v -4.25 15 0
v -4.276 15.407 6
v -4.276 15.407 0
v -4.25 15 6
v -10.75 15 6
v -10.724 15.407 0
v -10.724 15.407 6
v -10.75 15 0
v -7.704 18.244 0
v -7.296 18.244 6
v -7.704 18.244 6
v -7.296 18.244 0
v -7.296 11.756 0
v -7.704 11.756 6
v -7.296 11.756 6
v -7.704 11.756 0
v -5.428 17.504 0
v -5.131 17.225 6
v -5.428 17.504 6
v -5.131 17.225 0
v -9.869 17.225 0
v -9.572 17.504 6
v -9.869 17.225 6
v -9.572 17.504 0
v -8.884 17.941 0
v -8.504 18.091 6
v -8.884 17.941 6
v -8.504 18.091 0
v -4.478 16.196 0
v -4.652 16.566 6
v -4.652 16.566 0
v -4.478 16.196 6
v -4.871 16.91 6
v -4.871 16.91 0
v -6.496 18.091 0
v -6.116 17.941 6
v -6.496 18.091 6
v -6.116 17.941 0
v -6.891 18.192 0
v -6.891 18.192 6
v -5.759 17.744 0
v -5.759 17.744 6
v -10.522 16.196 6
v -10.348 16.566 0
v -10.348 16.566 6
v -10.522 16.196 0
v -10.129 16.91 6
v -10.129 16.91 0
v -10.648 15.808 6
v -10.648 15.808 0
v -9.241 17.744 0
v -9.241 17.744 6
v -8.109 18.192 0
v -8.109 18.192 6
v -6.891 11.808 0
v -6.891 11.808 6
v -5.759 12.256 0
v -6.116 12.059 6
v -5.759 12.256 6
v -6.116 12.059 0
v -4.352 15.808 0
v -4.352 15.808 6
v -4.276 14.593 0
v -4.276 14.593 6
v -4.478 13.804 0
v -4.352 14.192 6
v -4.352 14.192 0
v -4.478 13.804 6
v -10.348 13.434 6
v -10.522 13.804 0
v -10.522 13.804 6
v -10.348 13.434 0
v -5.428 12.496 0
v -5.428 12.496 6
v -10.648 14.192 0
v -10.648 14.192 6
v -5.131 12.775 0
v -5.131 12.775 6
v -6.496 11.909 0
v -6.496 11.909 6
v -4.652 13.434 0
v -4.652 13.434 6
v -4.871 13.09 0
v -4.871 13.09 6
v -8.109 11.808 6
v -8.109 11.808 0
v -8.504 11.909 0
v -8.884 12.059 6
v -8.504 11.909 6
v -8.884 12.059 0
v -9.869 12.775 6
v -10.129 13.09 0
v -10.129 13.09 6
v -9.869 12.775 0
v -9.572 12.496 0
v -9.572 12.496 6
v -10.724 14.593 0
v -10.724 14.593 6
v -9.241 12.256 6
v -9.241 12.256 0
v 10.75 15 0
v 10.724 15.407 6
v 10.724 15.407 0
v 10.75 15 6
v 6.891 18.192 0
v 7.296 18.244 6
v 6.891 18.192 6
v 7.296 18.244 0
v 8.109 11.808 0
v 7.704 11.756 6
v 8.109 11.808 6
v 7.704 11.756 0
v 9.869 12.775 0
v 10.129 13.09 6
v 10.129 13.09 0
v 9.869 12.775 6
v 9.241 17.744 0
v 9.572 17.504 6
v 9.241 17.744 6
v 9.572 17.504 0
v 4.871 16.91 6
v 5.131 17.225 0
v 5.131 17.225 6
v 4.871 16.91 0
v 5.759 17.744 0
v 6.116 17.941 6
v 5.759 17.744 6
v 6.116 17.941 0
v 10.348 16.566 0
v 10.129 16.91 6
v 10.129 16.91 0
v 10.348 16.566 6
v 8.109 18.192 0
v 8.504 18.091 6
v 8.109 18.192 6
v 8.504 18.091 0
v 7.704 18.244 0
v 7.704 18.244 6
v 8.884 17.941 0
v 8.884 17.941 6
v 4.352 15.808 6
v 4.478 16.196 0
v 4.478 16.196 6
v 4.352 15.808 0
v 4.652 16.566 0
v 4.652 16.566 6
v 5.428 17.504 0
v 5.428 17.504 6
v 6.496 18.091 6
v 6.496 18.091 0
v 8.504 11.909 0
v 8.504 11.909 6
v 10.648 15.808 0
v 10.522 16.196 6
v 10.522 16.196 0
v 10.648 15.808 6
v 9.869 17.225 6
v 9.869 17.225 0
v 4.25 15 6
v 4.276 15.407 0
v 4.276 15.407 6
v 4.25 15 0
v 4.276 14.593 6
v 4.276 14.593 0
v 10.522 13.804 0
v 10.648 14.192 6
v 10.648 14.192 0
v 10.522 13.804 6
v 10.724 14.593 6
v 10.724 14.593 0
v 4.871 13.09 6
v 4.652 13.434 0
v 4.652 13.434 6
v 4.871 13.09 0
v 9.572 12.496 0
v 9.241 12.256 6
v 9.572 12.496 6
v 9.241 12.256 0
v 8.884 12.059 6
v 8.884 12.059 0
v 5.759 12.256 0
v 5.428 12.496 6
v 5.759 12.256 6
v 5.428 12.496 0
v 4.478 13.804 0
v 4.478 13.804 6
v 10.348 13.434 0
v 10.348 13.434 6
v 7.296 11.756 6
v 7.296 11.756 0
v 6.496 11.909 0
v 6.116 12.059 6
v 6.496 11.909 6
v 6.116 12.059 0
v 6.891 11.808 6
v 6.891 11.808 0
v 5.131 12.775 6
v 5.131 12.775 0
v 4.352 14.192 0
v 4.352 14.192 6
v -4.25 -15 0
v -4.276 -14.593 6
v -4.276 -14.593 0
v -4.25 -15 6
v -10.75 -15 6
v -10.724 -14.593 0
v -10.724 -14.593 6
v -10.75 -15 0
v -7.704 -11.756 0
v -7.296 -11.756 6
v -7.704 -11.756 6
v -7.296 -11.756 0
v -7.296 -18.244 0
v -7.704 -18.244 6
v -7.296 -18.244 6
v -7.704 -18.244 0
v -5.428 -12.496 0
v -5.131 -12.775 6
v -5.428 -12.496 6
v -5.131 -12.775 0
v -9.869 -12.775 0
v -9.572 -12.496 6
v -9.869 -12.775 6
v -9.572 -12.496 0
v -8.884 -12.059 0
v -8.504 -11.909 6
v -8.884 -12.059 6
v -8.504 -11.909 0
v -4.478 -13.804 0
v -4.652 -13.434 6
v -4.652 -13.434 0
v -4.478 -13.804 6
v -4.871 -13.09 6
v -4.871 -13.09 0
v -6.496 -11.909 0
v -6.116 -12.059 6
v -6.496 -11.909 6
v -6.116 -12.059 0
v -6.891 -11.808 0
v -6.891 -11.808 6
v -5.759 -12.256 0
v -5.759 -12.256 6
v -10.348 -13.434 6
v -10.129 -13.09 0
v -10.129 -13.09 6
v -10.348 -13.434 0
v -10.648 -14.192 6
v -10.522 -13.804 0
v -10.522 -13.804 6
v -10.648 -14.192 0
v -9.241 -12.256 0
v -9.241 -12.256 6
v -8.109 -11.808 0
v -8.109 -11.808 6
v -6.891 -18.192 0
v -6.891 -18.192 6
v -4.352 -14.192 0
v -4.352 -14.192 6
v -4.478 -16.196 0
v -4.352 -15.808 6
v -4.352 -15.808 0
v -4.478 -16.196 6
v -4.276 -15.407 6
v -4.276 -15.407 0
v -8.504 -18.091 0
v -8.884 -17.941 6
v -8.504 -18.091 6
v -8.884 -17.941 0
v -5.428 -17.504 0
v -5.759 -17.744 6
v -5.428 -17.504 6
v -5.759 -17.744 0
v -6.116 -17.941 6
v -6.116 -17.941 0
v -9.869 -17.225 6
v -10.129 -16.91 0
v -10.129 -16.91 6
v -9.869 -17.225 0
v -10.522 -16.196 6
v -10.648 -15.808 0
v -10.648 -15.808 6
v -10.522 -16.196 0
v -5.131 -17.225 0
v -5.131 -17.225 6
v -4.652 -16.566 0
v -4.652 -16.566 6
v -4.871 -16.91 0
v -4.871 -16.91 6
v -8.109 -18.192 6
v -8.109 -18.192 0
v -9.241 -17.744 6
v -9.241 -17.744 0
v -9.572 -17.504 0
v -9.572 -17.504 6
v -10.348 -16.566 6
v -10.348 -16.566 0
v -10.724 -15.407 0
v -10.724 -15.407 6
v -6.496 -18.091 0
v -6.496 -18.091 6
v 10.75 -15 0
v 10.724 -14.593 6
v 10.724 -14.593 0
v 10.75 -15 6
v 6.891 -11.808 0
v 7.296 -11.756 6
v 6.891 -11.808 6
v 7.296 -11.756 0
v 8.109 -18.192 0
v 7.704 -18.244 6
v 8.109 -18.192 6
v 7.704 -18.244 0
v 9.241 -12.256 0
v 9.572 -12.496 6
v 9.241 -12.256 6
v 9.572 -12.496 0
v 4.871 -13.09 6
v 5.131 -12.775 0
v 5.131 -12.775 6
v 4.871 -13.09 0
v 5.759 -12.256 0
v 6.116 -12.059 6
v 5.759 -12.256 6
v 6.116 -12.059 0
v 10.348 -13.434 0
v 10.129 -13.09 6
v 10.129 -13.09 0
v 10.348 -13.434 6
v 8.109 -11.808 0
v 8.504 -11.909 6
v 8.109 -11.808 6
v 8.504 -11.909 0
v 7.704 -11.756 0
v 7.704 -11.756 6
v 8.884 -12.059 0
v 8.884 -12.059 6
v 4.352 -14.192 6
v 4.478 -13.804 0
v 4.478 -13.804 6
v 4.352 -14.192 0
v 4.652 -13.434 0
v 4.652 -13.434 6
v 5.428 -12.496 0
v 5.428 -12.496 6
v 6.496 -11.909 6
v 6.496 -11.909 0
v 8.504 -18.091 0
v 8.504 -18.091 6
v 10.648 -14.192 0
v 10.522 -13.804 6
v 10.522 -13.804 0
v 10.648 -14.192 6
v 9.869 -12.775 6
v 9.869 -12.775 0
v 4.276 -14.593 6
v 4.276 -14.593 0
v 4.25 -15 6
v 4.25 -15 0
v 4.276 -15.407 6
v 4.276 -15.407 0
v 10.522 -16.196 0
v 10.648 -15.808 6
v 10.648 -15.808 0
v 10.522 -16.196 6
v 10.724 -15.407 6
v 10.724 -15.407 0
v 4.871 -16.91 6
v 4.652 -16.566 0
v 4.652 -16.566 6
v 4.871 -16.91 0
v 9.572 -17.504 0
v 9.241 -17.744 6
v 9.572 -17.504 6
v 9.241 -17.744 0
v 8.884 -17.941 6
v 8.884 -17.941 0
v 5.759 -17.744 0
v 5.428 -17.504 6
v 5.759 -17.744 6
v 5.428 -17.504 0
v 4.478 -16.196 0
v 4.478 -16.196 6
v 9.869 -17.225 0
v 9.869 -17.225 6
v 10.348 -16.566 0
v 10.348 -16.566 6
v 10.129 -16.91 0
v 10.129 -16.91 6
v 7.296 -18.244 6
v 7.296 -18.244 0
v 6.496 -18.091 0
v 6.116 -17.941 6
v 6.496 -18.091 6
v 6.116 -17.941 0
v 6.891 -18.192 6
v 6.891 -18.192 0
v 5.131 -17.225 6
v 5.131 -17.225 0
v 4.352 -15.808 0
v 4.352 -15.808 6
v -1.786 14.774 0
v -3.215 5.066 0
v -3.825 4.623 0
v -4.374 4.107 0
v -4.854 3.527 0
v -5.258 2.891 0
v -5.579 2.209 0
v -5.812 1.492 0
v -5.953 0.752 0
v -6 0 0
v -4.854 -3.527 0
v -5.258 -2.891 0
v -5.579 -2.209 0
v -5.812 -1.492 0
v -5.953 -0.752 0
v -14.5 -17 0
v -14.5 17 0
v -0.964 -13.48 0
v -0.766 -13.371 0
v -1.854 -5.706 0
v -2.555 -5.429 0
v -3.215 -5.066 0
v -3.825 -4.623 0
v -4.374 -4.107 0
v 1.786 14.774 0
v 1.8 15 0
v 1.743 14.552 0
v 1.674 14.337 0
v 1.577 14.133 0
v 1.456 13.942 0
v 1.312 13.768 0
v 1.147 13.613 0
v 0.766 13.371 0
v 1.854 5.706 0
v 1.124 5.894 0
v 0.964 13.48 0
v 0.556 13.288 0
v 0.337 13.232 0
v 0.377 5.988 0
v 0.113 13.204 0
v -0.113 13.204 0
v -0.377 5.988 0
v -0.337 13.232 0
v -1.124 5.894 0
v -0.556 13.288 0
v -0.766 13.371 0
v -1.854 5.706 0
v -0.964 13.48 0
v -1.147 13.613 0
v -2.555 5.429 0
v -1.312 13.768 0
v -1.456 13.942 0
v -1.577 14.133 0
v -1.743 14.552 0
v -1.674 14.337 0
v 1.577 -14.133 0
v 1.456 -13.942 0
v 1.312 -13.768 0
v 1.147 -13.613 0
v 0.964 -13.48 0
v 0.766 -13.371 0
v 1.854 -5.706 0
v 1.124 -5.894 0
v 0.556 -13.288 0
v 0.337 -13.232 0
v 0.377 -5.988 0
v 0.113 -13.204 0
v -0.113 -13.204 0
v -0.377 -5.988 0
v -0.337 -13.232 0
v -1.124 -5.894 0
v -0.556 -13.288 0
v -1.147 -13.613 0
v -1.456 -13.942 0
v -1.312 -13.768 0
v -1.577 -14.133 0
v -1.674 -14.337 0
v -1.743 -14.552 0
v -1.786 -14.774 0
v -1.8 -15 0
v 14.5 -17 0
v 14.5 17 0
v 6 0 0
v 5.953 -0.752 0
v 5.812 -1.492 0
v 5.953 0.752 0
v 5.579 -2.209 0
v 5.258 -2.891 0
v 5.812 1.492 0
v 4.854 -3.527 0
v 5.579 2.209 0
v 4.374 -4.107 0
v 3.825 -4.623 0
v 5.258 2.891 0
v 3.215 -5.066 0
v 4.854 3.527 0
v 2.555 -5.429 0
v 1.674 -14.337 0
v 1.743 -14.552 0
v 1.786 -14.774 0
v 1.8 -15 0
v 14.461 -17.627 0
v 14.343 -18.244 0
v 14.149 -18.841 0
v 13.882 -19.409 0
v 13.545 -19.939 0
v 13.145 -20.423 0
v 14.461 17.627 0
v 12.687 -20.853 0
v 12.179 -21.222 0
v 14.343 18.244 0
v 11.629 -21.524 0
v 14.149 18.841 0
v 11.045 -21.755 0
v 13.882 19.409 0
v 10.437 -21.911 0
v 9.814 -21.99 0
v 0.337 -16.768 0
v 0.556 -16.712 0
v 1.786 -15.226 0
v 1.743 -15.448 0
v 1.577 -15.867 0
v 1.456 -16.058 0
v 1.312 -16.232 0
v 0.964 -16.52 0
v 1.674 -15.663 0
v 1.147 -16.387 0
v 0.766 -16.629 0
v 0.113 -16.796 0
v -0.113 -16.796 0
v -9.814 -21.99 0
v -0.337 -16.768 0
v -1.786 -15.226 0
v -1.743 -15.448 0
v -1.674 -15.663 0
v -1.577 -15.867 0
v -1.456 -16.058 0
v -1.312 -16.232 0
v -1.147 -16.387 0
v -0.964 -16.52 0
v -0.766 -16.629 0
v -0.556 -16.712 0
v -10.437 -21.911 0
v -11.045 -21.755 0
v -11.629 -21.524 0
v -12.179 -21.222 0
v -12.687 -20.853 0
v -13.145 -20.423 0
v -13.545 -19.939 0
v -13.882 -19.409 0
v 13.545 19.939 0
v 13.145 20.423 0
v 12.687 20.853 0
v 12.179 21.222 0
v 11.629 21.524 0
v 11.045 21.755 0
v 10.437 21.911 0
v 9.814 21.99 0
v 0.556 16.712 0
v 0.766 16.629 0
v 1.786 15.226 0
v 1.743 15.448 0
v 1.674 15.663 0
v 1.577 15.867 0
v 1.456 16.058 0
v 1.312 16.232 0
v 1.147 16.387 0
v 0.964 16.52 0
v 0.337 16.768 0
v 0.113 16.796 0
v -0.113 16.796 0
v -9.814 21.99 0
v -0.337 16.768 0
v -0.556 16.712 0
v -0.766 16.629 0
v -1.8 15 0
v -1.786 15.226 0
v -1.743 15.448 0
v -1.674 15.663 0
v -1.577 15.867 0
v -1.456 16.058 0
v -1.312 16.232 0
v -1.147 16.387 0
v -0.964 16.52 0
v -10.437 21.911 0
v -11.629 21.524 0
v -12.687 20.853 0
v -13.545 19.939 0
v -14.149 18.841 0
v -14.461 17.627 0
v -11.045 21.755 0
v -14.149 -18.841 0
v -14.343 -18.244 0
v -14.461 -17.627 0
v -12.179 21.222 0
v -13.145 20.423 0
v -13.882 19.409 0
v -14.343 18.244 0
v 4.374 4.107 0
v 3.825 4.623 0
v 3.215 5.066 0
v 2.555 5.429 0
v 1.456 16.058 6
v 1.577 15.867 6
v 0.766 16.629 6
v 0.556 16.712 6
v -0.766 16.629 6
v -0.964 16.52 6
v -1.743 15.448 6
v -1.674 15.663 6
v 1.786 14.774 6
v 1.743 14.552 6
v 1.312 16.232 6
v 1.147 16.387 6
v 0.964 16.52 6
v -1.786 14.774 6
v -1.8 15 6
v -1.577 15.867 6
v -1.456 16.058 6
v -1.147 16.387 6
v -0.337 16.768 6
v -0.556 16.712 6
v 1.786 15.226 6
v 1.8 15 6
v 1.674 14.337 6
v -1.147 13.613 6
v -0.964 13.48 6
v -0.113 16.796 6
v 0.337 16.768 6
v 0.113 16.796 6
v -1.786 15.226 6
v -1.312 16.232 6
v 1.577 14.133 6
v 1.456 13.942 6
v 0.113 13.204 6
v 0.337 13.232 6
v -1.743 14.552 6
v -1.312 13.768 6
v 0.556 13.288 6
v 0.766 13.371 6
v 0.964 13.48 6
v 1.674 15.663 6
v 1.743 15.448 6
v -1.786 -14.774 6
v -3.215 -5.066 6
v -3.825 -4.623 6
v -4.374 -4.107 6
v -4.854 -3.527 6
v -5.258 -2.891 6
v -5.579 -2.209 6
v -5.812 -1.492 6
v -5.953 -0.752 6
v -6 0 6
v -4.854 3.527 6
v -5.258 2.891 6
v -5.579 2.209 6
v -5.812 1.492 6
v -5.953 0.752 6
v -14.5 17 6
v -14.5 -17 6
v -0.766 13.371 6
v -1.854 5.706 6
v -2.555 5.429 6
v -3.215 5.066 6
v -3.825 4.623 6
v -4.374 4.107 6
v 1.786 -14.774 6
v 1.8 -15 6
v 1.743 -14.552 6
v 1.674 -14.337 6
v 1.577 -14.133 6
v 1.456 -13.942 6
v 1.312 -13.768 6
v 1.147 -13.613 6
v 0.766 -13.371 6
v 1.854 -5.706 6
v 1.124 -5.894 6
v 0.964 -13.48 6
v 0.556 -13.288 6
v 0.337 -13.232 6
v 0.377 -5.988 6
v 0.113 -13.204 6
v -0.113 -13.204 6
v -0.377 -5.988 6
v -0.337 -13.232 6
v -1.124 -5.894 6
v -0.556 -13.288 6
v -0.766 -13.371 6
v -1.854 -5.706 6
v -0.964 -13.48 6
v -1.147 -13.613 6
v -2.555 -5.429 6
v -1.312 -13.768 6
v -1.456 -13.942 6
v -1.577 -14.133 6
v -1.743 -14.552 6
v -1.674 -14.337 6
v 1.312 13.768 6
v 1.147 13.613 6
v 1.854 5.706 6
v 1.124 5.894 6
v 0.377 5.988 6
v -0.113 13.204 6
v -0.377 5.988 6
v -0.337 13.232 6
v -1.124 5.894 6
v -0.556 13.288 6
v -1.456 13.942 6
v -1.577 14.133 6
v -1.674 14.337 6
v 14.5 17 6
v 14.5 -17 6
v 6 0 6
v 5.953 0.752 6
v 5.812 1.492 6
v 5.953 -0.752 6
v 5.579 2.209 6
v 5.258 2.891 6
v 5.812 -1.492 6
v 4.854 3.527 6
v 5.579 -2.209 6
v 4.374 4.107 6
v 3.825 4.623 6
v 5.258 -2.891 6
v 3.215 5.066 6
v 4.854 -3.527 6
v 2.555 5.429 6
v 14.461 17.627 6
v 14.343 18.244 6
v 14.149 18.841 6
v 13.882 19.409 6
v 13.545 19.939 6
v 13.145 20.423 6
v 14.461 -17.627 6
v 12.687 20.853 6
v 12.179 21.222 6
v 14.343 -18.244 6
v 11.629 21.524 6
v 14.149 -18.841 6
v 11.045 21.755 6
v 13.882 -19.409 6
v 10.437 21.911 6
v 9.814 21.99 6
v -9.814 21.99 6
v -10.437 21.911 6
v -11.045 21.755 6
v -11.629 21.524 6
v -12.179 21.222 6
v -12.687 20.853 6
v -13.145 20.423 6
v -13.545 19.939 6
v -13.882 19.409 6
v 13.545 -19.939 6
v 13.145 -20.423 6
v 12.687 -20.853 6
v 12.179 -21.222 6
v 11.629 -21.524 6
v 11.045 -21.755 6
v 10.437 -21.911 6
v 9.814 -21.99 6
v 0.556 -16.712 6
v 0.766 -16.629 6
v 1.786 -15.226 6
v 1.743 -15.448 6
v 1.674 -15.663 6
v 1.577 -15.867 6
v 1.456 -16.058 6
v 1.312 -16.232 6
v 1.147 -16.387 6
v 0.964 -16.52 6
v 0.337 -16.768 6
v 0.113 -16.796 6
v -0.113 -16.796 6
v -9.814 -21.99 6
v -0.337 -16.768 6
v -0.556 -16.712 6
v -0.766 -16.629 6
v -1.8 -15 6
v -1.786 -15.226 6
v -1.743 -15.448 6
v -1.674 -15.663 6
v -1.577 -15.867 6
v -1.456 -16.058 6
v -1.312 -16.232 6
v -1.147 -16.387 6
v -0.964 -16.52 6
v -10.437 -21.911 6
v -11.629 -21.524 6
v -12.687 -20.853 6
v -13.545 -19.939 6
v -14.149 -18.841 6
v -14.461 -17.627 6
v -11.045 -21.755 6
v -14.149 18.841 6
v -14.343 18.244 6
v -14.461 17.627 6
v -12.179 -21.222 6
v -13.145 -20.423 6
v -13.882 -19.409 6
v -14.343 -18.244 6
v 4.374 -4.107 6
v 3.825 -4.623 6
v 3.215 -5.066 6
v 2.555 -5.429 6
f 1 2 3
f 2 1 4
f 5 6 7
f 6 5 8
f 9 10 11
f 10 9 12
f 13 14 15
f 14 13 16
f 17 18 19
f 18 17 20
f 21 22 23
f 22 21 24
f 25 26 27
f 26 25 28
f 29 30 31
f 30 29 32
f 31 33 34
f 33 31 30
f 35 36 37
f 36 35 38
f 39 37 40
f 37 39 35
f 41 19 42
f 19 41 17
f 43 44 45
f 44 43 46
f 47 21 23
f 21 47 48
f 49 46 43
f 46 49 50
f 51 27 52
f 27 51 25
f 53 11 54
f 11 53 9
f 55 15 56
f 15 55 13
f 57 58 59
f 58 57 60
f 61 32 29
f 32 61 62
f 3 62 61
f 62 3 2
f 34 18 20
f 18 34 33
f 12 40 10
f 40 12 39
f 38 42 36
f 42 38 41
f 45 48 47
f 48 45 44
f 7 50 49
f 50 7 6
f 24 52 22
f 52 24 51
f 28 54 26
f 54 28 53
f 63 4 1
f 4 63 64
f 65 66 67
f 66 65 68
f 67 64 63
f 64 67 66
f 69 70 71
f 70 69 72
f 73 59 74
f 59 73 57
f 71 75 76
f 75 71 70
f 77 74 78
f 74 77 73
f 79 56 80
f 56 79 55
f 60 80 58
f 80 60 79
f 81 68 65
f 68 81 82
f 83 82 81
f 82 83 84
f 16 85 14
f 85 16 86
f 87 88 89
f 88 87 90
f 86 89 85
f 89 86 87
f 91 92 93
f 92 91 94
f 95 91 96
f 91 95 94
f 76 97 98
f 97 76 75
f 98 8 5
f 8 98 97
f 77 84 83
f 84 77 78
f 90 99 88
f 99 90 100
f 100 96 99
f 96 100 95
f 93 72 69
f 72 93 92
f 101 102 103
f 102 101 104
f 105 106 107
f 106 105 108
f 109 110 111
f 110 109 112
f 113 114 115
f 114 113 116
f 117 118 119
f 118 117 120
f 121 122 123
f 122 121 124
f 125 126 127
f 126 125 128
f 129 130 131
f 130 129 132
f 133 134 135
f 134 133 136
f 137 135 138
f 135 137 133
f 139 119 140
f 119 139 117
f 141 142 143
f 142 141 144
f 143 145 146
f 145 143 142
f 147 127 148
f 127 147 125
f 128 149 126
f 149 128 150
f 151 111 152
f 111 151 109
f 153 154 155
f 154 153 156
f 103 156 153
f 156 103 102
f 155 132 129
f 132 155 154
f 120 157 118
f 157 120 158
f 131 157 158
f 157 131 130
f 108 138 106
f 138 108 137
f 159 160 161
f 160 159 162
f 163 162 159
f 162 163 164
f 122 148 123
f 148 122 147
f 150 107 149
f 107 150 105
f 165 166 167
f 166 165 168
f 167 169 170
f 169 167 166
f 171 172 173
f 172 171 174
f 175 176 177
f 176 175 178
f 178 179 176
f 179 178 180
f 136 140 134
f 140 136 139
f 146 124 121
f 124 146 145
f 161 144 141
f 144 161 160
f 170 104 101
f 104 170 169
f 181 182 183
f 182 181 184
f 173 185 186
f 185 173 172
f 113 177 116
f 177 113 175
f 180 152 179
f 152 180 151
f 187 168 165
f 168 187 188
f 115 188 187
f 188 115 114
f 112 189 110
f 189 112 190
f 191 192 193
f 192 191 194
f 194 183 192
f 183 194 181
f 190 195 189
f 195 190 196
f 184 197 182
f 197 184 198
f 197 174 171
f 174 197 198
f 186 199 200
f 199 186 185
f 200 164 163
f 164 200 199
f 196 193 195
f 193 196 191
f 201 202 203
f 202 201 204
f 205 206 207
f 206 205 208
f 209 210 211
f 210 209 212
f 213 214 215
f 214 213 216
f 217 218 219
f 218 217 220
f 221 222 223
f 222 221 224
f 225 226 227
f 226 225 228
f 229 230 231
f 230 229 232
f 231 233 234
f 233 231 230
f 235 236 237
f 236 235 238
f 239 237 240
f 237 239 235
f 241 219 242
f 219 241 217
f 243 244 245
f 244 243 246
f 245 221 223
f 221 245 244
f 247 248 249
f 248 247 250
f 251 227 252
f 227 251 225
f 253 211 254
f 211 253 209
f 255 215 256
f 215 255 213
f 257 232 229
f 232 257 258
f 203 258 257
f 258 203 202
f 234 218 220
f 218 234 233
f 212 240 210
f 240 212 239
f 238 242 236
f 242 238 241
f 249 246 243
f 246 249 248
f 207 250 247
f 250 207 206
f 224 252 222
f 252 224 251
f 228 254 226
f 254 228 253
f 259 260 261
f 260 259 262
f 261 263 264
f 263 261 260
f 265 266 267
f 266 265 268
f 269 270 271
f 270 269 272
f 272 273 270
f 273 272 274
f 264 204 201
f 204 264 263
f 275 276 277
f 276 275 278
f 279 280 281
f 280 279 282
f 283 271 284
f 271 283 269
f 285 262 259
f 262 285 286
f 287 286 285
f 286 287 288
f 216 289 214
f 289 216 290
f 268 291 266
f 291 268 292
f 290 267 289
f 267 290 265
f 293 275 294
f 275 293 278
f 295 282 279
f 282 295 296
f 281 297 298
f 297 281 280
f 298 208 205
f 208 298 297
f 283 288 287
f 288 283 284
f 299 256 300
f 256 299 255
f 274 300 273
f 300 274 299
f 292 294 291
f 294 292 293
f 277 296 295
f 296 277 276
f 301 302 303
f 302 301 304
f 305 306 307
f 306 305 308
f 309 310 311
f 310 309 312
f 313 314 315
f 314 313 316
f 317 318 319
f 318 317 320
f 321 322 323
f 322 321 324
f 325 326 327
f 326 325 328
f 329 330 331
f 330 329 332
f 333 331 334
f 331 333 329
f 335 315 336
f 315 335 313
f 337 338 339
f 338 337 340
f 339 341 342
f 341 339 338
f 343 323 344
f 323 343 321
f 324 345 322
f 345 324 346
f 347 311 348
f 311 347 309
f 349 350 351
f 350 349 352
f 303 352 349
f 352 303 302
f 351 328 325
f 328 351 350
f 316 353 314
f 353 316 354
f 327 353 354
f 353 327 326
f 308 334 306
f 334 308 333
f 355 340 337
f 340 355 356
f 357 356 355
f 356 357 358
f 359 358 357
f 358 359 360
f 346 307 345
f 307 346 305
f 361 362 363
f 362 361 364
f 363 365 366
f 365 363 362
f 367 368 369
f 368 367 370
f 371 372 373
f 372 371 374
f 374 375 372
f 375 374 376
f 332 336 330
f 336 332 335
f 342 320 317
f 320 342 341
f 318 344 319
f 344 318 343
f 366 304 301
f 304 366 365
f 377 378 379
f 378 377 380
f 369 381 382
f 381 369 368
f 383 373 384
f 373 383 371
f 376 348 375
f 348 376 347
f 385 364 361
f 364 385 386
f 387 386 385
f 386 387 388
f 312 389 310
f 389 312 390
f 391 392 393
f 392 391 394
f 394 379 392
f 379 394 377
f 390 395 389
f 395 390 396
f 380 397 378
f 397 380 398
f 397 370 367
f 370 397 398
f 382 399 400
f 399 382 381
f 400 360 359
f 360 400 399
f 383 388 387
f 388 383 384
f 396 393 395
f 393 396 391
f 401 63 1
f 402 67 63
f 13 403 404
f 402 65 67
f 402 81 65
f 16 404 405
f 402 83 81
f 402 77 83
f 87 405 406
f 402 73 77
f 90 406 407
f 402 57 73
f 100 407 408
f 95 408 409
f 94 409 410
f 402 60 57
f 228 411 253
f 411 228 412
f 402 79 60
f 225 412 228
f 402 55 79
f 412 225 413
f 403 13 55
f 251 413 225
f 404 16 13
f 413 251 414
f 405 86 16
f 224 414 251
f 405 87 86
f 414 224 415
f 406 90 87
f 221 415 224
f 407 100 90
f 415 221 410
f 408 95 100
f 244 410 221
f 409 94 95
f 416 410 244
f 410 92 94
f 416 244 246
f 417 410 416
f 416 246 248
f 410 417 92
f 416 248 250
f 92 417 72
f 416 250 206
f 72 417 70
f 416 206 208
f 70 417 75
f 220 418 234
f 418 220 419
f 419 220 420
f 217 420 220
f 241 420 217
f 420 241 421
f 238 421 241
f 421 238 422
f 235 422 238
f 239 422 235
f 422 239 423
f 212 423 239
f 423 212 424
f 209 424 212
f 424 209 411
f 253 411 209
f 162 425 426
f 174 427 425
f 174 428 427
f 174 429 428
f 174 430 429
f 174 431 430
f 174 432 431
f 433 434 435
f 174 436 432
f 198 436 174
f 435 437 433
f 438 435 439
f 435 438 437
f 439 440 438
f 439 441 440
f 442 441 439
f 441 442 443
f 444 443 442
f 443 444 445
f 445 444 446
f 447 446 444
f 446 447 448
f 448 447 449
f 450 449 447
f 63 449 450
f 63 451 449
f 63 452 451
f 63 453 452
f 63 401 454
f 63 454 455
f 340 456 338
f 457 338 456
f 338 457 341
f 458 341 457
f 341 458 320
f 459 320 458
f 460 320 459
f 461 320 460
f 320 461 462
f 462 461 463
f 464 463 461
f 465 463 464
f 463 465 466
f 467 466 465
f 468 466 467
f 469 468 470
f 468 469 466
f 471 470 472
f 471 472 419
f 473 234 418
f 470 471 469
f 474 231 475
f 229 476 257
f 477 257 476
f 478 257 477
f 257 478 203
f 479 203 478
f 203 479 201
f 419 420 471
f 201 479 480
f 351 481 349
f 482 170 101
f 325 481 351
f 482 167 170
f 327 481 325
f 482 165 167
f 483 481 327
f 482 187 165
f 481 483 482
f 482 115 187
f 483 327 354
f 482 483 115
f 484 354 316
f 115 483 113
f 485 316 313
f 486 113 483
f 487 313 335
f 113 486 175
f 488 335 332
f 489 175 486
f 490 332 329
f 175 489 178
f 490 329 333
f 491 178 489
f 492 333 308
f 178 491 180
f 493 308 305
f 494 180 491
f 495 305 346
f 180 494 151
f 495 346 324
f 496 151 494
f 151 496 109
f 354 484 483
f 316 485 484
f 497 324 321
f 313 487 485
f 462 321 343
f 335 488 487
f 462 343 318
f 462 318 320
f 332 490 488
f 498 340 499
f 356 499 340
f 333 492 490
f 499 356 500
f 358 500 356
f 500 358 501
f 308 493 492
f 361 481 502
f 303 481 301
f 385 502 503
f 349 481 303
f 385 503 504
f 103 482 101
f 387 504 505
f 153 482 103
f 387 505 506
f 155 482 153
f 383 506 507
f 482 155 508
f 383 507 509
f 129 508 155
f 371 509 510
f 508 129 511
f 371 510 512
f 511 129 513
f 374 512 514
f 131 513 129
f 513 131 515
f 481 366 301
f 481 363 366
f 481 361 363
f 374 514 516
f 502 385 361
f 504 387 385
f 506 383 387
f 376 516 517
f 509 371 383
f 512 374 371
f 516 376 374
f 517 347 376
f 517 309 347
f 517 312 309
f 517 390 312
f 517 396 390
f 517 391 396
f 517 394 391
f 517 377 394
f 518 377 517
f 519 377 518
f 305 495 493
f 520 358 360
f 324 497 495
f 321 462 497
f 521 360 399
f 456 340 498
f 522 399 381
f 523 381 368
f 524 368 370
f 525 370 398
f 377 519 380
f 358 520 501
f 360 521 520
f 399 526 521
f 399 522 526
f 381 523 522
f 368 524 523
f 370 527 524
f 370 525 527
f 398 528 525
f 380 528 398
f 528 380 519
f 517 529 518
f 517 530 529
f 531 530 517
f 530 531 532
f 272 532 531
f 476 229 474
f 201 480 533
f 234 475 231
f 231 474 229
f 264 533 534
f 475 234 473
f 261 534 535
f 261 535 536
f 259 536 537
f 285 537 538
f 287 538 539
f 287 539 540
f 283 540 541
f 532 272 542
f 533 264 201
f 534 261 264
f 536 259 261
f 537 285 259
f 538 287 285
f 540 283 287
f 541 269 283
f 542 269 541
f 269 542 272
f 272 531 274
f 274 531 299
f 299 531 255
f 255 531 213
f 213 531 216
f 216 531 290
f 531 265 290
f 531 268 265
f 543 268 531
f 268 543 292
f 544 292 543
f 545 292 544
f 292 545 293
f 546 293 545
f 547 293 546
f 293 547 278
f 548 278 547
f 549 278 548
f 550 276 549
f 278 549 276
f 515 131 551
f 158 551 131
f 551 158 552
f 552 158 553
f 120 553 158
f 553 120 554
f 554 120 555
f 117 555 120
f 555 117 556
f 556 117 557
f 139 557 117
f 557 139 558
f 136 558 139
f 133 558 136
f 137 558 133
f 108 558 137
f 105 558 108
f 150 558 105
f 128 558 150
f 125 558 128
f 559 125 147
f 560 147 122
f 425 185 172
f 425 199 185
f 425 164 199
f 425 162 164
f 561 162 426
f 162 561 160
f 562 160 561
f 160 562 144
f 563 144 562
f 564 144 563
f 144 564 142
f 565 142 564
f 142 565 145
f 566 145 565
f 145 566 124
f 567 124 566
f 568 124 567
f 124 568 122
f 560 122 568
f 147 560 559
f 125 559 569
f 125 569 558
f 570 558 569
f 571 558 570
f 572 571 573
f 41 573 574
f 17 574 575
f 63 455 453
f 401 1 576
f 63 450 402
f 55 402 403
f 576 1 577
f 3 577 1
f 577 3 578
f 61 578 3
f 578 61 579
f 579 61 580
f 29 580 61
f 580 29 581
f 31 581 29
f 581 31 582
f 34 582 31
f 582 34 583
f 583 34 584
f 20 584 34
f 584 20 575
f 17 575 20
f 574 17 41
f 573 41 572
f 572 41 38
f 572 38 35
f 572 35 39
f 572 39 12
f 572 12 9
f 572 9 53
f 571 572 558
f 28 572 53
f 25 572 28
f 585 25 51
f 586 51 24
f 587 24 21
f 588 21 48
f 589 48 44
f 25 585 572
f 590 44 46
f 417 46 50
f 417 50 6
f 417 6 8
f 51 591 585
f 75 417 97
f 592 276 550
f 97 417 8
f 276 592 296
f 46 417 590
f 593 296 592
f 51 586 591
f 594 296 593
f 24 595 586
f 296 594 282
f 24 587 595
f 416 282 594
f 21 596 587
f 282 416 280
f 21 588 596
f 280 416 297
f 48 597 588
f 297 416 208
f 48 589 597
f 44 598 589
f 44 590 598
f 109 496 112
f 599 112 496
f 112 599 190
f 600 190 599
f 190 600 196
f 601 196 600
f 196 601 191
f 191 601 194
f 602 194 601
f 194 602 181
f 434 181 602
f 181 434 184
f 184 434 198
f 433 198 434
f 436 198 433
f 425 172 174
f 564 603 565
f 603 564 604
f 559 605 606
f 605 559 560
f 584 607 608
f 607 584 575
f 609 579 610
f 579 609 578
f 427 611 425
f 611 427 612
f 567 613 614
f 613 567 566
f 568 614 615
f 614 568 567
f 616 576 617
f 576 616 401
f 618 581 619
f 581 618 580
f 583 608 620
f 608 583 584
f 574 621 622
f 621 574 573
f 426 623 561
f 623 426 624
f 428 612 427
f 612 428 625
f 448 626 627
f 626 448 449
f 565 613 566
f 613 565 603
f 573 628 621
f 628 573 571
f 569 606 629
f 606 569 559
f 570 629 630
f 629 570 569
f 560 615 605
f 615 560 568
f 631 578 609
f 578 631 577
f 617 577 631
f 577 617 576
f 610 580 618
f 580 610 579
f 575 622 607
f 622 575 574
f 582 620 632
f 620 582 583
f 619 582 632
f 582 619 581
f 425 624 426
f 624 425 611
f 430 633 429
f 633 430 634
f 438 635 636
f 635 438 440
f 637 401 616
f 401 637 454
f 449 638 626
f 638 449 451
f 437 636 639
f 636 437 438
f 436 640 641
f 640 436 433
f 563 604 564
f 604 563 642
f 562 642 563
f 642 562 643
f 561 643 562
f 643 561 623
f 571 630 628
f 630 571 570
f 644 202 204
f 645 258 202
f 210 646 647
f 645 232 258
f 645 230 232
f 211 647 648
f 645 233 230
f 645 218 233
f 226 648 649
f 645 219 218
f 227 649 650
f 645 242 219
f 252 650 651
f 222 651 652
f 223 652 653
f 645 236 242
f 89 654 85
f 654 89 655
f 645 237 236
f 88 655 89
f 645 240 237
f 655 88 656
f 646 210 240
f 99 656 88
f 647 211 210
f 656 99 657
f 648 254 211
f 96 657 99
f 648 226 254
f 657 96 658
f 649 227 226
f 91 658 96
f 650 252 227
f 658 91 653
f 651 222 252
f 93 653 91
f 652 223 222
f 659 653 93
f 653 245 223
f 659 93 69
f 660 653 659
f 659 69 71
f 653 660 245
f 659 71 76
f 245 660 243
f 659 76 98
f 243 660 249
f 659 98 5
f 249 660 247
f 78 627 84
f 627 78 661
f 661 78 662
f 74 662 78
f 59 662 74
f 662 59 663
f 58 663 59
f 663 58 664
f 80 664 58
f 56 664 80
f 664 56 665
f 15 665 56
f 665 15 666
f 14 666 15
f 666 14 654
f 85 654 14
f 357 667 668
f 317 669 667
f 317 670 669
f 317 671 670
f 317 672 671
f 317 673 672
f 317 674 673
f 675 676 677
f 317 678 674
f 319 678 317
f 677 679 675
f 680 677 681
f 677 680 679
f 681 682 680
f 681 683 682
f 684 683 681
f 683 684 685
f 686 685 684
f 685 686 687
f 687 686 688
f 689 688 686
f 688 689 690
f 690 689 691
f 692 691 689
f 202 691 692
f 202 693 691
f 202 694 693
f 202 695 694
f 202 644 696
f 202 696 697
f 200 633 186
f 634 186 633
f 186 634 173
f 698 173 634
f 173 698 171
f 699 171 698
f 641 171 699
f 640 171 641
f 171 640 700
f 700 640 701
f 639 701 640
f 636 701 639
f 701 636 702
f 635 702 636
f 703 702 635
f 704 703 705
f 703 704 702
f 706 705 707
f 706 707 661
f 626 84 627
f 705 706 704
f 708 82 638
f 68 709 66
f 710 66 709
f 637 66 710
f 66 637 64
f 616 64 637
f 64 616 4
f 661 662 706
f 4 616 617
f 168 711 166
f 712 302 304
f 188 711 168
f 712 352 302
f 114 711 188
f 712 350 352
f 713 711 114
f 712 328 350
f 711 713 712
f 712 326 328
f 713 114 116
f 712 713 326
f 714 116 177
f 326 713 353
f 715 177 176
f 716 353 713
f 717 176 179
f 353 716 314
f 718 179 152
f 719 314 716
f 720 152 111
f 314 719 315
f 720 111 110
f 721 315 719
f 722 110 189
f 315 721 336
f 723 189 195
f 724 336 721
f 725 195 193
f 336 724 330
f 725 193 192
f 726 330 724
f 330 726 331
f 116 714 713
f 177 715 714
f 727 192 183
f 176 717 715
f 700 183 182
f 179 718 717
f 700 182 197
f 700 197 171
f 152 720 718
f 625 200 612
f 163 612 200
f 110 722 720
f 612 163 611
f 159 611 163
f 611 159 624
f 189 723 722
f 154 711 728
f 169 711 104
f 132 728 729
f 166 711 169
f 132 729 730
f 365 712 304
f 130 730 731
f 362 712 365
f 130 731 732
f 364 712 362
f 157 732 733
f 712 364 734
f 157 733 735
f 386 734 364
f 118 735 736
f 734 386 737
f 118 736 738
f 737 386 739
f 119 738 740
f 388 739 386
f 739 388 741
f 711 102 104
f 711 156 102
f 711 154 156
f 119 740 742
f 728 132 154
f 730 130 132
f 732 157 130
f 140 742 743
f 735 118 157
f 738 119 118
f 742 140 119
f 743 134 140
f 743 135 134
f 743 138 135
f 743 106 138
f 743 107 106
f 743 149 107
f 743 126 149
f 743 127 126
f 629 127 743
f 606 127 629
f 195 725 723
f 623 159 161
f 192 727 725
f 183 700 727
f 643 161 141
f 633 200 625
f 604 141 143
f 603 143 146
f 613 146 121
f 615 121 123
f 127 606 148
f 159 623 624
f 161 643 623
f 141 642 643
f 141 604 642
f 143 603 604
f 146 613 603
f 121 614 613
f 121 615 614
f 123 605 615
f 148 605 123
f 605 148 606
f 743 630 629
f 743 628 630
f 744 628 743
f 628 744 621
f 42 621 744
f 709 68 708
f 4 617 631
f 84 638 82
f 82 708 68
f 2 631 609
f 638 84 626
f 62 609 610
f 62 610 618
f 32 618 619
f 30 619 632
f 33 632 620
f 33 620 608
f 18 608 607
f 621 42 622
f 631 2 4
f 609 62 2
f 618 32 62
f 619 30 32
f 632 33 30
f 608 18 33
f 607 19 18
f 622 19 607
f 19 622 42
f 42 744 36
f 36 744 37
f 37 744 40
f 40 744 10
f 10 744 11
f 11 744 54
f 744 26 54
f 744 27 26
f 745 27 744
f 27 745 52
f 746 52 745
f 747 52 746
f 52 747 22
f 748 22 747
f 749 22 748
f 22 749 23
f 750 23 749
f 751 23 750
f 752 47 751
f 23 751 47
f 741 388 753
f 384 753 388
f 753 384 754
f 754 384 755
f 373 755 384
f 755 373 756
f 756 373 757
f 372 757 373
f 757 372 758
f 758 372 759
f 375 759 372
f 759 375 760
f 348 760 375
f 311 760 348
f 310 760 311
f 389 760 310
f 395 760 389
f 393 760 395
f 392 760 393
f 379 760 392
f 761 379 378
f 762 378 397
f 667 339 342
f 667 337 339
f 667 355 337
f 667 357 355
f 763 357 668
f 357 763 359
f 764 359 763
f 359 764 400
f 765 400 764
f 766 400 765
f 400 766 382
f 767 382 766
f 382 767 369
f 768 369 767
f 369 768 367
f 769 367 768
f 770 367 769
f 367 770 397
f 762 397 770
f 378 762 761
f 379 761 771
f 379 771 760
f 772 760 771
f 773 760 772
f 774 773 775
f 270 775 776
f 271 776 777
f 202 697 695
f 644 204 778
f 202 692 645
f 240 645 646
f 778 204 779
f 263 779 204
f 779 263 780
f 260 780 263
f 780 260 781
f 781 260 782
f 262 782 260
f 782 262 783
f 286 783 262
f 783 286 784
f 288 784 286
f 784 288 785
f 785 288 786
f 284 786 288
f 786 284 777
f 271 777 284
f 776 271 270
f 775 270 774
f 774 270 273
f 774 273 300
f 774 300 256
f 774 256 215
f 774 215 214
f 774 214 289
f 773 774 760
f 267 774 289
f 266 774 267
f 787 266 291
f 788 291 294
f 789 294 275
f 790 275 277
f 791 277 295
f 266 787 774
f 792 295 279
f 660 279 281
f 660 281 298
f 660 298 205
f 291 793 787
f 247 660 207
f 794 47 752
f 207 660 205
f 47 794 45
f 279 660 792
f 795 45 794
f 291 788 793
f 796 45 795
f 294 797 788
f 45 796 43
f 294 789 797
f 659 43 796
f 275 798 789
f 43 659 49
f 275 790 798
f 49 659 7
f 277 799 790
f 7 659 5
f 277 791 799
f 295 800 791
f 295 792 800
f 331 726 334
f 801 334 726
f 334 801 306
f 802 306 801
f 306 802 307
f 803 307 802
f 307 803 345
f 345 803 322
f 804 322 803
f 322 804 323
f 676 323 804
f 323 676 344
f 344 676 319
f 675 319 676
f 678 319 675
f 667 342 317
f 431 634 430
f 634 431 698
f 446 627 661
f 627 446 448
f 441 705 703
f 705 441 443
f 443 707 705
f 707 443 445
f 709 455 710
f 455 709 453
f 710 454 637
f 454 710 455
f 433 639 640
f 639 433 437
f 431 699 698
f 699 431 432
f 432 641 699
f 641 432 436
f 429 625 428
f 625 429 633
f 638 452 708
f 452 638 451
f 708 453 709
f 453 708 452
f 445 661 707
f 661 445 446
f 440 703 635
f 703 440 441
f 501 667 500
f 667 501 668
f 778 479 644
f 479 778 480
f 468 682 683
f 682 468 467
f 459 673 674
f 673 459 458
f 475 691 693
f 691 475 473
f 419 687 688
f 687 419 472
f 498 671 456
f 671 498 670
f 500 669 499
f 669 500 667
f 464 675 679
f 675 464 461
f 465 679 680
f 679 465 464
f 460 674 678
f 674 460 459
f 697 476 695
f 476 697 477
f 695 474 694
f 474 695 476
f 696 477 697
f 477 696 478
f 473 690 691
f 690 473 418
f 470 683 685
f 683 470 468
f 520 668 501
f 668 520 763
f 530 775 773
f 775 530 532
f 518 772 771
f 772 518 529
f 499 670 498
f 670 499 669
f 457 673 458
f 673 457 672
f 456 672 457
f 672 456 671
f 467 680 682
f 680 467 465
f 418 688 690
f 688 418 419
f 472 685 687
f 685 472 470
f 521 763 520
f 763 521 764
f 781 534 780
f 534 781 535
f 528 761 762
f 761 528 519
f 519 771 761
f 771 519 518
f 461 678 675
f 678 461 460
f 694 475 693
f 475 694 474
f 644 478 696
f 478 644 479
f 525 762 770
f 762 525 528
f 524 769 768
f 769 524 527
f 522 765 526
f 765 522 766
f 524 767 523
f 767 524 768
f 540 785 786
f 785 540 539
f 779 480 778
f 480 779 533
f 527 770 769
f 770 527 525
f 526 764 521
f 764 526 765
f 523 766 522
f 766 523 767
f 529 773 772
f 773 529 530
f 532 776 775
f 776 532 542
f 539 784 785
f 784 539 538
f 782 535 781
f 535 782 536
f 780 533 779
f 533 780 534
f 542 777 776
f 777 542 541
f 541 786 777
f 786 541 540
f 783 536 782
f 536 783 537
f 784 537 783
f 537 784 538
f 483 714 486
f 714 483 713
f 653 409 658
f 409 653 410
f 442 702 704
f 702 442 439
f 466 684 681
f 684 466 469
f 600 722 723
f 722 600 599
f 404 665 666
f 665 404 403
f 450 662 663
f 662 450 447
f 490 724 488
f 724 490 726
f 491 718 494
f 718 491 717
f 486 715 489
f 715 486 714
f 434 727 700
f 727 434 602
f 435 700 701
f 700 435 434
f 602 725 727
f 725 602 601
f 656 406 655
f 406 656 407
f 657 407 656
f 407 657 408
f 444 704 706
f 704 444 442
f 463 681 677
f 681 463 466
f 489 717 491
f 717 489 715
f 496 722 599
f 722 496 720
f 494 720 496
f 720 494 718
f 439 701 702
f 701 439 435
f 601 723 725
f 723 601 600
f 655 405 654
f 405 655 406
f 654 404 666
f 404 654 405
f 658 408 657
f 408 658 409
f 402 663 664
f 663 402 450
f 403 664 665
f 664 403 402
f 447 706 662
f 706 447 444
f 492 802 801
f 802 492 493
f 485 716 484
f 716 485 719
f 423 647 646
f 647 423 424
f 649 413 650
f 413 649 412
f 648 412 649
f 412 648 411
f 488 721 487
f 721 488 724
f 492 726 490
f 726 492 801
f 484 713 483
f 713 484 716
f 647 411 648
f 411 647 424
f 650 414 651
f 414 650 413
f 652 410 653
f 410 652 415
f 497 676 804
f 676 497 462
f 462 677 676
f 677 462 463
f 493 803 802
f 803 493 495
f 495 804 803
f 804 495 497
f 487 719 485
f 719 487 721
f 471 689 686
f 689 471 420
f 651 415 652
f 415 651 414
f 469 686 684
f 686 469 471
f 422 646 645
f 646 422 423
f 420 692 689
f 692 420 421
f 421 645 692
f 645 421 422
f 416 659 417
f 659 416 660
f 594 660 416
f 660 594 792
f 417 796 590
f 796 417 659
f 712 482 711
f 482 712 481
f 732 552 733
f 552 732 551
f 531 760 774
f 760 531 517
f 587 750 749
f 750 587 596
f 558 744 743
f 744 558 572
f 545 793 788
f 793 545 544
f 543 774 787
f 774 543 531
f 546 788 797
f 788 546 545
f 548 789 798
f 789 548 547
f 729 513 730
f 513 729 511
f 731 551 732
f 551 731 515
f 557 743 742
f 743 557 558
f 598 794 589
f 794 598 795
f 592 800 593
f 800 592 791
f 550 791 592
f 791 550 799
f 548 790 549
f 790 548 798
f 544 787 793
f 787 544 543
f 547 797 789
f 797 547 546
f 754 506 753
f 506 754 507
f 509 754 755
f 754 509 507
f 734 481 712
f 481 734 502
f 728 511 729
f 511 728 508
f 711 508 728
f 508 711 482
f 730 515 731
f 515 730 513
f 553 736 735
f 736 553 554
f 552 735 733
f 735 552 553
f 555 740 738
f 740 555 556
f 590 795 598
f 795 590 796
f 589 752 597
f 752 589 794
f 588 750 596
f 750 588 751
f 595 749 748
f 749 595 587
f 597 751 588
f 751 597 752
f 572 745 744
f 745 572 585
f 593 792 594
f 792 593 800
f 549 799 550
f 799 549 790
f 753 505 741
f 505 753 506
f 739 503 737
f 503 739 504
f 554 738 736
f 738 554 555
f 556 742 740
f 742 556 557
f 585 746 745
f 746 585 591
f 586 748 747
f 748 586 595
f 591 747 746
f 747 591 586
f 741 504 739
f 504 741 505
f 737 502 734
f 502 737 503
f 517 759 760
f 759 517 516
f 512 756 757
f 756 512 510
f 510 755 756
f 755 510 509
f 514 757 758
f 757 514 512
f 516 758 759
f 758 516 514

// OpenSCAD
$fn = 50;


difference() {
	union() {
		hull() {
			translate(v = [-9.5000000000, 17.0000000000, 0]) {
				cylinder(h = 6, r = 5);
			}
			translate(v = [9.5000000000, 17.0000000000, 0]) {
				cylinder(h = 6, r = 5);
			}
			translate(v = [-9.5000000000, -17.0000000000, 0]) {
				cylinder(h = 6, r = 5);
			}
			translate(v = [9.5000000000, -17.0000000000, 0]) {
				cylinder(h = 6, r = 5);
			}
		}
	}
	union() {
		#translate(v = [-7.5000000000, 15.0000000000, 0]) {
			cylinder(h = 6, r = 3.2500000000);
		}
		#translate(v = [7.5000000000, 15.0000000000, 0]) {
			cylinder(h = 6, r = 3.2500000000);
		}
		#translate(v = [-7.5000000000, -15.0000000000, 0]) {
			cylinder(h = 6, r = 3.2500000000);
		}
		#translate(v = [7.5000000000, -15.0000000000, 0]) {
			cylinder(h = 6, r = 3.2500000000);
		}
		#translate(v = [-7.5000000000, -15.0000000000, -100.0000000000]) {
			cylinder(h = 200, r = 3.2500000000);
		}
		#translate(v = [-7.5000000000, 15.0000000000, -100.0000000000]) {
			cylinder(h = 200, r = 3.2500000000);
		}
		#translate(v = [7.5000000000, -15.0000000000, -100.0000000000]) {
			cylinder(h = 200, r = 3.2500000000);
		}
		#translate(v = [7.5000000000, 15.0000000000, -100.0000000000]) {
			cylinder(h = 200, r = 3.2500000000);
		}
		#translate(v = [-7.5000000000, 15.0000000000, 0]) {
			cylinder(h = 6, r = 1.8000000000);
		}
		#translate(v = [0.0000000000, 15.0000000000, 0]) {
			cylinder(h = 6, r = 1.8000000000);
		}
		#translate(v = [7.5000000000, 15.0000000000, 0]) {
			cylinder(h = 6, r = 1.8000000000);
		}
		#translate(v = [-7.5000000000, -15.0000000000, 0]) {
			cylinder(h = 6, r = 1.8000000000);
		}
		#translate(v = [0.0000000000, -15.0000000000, 0]) {
			cylinder(h = 6, r = 1.8000000000);
		}
		#translate(v = [7.5000000000, -15.0000000000, 0]) {
			cylinder(h = 6, r = 1.8000000000);
		}
		#translate(v = [-7.5000000000, 15.0000000000, 0]) {
			cylinder(h = 6, r = 1.8000000000);
		}
		#translate(v = [0.0000000000, 15.0000000000, 0]) {
			cylinder(h = 6, r = 1.8000000000);
		}
		#translate(v = [7.5000000000, 15.0000000000, 0]) {
			cylinder(h = 6, r = 1.8000000000);
		}
		#translate(v = [-7.5000000000, -15.0000000000, 0]) {
			cylinder(h = 6, r = 1.8000000000);
		}
		#translate(v = [0.0000000000, -15.0000000000, 0]) {
			cylinder(h = 6, r = 1.8000000000);
		}
		#translate(v = [7.5000000000, -15.0000000000, 0]) {
			cylinder(h = 6, r = 1.8000000000);
		}
		#translate(v = [-7.5000000000, 15.0000000000, 0]) {
			cylinder(h = 6, r = 1.8000000000);
		}
		#translate(v = [0.0000000000, 15.0000000000, 0]) {
			cylinder(h = 6, r = 1.8000000000);
		}
		#translate(v = [7.5000000000, 15.0000000000, 0]) {
			cylinder(h = 6, r = 1.8000000000);
		}
		#translate(v = [-7.5000000000, -15.0000000000, 0]) {
			cylinder(h = 6, r = 1.8000000000);
		}
		#translate(v = [0.0000000000, -15.0000000000, 0]) {
			cylinder(h = 6, r = 1.8000000000);
		}
		#translate(v = [7.5000000000, -15.0000000000, 0]) {
			cylinder(h = 6, r = 1.8000000000);
		}
		#cylinder(h = 6, r = 6.0000000000);
	}
}
